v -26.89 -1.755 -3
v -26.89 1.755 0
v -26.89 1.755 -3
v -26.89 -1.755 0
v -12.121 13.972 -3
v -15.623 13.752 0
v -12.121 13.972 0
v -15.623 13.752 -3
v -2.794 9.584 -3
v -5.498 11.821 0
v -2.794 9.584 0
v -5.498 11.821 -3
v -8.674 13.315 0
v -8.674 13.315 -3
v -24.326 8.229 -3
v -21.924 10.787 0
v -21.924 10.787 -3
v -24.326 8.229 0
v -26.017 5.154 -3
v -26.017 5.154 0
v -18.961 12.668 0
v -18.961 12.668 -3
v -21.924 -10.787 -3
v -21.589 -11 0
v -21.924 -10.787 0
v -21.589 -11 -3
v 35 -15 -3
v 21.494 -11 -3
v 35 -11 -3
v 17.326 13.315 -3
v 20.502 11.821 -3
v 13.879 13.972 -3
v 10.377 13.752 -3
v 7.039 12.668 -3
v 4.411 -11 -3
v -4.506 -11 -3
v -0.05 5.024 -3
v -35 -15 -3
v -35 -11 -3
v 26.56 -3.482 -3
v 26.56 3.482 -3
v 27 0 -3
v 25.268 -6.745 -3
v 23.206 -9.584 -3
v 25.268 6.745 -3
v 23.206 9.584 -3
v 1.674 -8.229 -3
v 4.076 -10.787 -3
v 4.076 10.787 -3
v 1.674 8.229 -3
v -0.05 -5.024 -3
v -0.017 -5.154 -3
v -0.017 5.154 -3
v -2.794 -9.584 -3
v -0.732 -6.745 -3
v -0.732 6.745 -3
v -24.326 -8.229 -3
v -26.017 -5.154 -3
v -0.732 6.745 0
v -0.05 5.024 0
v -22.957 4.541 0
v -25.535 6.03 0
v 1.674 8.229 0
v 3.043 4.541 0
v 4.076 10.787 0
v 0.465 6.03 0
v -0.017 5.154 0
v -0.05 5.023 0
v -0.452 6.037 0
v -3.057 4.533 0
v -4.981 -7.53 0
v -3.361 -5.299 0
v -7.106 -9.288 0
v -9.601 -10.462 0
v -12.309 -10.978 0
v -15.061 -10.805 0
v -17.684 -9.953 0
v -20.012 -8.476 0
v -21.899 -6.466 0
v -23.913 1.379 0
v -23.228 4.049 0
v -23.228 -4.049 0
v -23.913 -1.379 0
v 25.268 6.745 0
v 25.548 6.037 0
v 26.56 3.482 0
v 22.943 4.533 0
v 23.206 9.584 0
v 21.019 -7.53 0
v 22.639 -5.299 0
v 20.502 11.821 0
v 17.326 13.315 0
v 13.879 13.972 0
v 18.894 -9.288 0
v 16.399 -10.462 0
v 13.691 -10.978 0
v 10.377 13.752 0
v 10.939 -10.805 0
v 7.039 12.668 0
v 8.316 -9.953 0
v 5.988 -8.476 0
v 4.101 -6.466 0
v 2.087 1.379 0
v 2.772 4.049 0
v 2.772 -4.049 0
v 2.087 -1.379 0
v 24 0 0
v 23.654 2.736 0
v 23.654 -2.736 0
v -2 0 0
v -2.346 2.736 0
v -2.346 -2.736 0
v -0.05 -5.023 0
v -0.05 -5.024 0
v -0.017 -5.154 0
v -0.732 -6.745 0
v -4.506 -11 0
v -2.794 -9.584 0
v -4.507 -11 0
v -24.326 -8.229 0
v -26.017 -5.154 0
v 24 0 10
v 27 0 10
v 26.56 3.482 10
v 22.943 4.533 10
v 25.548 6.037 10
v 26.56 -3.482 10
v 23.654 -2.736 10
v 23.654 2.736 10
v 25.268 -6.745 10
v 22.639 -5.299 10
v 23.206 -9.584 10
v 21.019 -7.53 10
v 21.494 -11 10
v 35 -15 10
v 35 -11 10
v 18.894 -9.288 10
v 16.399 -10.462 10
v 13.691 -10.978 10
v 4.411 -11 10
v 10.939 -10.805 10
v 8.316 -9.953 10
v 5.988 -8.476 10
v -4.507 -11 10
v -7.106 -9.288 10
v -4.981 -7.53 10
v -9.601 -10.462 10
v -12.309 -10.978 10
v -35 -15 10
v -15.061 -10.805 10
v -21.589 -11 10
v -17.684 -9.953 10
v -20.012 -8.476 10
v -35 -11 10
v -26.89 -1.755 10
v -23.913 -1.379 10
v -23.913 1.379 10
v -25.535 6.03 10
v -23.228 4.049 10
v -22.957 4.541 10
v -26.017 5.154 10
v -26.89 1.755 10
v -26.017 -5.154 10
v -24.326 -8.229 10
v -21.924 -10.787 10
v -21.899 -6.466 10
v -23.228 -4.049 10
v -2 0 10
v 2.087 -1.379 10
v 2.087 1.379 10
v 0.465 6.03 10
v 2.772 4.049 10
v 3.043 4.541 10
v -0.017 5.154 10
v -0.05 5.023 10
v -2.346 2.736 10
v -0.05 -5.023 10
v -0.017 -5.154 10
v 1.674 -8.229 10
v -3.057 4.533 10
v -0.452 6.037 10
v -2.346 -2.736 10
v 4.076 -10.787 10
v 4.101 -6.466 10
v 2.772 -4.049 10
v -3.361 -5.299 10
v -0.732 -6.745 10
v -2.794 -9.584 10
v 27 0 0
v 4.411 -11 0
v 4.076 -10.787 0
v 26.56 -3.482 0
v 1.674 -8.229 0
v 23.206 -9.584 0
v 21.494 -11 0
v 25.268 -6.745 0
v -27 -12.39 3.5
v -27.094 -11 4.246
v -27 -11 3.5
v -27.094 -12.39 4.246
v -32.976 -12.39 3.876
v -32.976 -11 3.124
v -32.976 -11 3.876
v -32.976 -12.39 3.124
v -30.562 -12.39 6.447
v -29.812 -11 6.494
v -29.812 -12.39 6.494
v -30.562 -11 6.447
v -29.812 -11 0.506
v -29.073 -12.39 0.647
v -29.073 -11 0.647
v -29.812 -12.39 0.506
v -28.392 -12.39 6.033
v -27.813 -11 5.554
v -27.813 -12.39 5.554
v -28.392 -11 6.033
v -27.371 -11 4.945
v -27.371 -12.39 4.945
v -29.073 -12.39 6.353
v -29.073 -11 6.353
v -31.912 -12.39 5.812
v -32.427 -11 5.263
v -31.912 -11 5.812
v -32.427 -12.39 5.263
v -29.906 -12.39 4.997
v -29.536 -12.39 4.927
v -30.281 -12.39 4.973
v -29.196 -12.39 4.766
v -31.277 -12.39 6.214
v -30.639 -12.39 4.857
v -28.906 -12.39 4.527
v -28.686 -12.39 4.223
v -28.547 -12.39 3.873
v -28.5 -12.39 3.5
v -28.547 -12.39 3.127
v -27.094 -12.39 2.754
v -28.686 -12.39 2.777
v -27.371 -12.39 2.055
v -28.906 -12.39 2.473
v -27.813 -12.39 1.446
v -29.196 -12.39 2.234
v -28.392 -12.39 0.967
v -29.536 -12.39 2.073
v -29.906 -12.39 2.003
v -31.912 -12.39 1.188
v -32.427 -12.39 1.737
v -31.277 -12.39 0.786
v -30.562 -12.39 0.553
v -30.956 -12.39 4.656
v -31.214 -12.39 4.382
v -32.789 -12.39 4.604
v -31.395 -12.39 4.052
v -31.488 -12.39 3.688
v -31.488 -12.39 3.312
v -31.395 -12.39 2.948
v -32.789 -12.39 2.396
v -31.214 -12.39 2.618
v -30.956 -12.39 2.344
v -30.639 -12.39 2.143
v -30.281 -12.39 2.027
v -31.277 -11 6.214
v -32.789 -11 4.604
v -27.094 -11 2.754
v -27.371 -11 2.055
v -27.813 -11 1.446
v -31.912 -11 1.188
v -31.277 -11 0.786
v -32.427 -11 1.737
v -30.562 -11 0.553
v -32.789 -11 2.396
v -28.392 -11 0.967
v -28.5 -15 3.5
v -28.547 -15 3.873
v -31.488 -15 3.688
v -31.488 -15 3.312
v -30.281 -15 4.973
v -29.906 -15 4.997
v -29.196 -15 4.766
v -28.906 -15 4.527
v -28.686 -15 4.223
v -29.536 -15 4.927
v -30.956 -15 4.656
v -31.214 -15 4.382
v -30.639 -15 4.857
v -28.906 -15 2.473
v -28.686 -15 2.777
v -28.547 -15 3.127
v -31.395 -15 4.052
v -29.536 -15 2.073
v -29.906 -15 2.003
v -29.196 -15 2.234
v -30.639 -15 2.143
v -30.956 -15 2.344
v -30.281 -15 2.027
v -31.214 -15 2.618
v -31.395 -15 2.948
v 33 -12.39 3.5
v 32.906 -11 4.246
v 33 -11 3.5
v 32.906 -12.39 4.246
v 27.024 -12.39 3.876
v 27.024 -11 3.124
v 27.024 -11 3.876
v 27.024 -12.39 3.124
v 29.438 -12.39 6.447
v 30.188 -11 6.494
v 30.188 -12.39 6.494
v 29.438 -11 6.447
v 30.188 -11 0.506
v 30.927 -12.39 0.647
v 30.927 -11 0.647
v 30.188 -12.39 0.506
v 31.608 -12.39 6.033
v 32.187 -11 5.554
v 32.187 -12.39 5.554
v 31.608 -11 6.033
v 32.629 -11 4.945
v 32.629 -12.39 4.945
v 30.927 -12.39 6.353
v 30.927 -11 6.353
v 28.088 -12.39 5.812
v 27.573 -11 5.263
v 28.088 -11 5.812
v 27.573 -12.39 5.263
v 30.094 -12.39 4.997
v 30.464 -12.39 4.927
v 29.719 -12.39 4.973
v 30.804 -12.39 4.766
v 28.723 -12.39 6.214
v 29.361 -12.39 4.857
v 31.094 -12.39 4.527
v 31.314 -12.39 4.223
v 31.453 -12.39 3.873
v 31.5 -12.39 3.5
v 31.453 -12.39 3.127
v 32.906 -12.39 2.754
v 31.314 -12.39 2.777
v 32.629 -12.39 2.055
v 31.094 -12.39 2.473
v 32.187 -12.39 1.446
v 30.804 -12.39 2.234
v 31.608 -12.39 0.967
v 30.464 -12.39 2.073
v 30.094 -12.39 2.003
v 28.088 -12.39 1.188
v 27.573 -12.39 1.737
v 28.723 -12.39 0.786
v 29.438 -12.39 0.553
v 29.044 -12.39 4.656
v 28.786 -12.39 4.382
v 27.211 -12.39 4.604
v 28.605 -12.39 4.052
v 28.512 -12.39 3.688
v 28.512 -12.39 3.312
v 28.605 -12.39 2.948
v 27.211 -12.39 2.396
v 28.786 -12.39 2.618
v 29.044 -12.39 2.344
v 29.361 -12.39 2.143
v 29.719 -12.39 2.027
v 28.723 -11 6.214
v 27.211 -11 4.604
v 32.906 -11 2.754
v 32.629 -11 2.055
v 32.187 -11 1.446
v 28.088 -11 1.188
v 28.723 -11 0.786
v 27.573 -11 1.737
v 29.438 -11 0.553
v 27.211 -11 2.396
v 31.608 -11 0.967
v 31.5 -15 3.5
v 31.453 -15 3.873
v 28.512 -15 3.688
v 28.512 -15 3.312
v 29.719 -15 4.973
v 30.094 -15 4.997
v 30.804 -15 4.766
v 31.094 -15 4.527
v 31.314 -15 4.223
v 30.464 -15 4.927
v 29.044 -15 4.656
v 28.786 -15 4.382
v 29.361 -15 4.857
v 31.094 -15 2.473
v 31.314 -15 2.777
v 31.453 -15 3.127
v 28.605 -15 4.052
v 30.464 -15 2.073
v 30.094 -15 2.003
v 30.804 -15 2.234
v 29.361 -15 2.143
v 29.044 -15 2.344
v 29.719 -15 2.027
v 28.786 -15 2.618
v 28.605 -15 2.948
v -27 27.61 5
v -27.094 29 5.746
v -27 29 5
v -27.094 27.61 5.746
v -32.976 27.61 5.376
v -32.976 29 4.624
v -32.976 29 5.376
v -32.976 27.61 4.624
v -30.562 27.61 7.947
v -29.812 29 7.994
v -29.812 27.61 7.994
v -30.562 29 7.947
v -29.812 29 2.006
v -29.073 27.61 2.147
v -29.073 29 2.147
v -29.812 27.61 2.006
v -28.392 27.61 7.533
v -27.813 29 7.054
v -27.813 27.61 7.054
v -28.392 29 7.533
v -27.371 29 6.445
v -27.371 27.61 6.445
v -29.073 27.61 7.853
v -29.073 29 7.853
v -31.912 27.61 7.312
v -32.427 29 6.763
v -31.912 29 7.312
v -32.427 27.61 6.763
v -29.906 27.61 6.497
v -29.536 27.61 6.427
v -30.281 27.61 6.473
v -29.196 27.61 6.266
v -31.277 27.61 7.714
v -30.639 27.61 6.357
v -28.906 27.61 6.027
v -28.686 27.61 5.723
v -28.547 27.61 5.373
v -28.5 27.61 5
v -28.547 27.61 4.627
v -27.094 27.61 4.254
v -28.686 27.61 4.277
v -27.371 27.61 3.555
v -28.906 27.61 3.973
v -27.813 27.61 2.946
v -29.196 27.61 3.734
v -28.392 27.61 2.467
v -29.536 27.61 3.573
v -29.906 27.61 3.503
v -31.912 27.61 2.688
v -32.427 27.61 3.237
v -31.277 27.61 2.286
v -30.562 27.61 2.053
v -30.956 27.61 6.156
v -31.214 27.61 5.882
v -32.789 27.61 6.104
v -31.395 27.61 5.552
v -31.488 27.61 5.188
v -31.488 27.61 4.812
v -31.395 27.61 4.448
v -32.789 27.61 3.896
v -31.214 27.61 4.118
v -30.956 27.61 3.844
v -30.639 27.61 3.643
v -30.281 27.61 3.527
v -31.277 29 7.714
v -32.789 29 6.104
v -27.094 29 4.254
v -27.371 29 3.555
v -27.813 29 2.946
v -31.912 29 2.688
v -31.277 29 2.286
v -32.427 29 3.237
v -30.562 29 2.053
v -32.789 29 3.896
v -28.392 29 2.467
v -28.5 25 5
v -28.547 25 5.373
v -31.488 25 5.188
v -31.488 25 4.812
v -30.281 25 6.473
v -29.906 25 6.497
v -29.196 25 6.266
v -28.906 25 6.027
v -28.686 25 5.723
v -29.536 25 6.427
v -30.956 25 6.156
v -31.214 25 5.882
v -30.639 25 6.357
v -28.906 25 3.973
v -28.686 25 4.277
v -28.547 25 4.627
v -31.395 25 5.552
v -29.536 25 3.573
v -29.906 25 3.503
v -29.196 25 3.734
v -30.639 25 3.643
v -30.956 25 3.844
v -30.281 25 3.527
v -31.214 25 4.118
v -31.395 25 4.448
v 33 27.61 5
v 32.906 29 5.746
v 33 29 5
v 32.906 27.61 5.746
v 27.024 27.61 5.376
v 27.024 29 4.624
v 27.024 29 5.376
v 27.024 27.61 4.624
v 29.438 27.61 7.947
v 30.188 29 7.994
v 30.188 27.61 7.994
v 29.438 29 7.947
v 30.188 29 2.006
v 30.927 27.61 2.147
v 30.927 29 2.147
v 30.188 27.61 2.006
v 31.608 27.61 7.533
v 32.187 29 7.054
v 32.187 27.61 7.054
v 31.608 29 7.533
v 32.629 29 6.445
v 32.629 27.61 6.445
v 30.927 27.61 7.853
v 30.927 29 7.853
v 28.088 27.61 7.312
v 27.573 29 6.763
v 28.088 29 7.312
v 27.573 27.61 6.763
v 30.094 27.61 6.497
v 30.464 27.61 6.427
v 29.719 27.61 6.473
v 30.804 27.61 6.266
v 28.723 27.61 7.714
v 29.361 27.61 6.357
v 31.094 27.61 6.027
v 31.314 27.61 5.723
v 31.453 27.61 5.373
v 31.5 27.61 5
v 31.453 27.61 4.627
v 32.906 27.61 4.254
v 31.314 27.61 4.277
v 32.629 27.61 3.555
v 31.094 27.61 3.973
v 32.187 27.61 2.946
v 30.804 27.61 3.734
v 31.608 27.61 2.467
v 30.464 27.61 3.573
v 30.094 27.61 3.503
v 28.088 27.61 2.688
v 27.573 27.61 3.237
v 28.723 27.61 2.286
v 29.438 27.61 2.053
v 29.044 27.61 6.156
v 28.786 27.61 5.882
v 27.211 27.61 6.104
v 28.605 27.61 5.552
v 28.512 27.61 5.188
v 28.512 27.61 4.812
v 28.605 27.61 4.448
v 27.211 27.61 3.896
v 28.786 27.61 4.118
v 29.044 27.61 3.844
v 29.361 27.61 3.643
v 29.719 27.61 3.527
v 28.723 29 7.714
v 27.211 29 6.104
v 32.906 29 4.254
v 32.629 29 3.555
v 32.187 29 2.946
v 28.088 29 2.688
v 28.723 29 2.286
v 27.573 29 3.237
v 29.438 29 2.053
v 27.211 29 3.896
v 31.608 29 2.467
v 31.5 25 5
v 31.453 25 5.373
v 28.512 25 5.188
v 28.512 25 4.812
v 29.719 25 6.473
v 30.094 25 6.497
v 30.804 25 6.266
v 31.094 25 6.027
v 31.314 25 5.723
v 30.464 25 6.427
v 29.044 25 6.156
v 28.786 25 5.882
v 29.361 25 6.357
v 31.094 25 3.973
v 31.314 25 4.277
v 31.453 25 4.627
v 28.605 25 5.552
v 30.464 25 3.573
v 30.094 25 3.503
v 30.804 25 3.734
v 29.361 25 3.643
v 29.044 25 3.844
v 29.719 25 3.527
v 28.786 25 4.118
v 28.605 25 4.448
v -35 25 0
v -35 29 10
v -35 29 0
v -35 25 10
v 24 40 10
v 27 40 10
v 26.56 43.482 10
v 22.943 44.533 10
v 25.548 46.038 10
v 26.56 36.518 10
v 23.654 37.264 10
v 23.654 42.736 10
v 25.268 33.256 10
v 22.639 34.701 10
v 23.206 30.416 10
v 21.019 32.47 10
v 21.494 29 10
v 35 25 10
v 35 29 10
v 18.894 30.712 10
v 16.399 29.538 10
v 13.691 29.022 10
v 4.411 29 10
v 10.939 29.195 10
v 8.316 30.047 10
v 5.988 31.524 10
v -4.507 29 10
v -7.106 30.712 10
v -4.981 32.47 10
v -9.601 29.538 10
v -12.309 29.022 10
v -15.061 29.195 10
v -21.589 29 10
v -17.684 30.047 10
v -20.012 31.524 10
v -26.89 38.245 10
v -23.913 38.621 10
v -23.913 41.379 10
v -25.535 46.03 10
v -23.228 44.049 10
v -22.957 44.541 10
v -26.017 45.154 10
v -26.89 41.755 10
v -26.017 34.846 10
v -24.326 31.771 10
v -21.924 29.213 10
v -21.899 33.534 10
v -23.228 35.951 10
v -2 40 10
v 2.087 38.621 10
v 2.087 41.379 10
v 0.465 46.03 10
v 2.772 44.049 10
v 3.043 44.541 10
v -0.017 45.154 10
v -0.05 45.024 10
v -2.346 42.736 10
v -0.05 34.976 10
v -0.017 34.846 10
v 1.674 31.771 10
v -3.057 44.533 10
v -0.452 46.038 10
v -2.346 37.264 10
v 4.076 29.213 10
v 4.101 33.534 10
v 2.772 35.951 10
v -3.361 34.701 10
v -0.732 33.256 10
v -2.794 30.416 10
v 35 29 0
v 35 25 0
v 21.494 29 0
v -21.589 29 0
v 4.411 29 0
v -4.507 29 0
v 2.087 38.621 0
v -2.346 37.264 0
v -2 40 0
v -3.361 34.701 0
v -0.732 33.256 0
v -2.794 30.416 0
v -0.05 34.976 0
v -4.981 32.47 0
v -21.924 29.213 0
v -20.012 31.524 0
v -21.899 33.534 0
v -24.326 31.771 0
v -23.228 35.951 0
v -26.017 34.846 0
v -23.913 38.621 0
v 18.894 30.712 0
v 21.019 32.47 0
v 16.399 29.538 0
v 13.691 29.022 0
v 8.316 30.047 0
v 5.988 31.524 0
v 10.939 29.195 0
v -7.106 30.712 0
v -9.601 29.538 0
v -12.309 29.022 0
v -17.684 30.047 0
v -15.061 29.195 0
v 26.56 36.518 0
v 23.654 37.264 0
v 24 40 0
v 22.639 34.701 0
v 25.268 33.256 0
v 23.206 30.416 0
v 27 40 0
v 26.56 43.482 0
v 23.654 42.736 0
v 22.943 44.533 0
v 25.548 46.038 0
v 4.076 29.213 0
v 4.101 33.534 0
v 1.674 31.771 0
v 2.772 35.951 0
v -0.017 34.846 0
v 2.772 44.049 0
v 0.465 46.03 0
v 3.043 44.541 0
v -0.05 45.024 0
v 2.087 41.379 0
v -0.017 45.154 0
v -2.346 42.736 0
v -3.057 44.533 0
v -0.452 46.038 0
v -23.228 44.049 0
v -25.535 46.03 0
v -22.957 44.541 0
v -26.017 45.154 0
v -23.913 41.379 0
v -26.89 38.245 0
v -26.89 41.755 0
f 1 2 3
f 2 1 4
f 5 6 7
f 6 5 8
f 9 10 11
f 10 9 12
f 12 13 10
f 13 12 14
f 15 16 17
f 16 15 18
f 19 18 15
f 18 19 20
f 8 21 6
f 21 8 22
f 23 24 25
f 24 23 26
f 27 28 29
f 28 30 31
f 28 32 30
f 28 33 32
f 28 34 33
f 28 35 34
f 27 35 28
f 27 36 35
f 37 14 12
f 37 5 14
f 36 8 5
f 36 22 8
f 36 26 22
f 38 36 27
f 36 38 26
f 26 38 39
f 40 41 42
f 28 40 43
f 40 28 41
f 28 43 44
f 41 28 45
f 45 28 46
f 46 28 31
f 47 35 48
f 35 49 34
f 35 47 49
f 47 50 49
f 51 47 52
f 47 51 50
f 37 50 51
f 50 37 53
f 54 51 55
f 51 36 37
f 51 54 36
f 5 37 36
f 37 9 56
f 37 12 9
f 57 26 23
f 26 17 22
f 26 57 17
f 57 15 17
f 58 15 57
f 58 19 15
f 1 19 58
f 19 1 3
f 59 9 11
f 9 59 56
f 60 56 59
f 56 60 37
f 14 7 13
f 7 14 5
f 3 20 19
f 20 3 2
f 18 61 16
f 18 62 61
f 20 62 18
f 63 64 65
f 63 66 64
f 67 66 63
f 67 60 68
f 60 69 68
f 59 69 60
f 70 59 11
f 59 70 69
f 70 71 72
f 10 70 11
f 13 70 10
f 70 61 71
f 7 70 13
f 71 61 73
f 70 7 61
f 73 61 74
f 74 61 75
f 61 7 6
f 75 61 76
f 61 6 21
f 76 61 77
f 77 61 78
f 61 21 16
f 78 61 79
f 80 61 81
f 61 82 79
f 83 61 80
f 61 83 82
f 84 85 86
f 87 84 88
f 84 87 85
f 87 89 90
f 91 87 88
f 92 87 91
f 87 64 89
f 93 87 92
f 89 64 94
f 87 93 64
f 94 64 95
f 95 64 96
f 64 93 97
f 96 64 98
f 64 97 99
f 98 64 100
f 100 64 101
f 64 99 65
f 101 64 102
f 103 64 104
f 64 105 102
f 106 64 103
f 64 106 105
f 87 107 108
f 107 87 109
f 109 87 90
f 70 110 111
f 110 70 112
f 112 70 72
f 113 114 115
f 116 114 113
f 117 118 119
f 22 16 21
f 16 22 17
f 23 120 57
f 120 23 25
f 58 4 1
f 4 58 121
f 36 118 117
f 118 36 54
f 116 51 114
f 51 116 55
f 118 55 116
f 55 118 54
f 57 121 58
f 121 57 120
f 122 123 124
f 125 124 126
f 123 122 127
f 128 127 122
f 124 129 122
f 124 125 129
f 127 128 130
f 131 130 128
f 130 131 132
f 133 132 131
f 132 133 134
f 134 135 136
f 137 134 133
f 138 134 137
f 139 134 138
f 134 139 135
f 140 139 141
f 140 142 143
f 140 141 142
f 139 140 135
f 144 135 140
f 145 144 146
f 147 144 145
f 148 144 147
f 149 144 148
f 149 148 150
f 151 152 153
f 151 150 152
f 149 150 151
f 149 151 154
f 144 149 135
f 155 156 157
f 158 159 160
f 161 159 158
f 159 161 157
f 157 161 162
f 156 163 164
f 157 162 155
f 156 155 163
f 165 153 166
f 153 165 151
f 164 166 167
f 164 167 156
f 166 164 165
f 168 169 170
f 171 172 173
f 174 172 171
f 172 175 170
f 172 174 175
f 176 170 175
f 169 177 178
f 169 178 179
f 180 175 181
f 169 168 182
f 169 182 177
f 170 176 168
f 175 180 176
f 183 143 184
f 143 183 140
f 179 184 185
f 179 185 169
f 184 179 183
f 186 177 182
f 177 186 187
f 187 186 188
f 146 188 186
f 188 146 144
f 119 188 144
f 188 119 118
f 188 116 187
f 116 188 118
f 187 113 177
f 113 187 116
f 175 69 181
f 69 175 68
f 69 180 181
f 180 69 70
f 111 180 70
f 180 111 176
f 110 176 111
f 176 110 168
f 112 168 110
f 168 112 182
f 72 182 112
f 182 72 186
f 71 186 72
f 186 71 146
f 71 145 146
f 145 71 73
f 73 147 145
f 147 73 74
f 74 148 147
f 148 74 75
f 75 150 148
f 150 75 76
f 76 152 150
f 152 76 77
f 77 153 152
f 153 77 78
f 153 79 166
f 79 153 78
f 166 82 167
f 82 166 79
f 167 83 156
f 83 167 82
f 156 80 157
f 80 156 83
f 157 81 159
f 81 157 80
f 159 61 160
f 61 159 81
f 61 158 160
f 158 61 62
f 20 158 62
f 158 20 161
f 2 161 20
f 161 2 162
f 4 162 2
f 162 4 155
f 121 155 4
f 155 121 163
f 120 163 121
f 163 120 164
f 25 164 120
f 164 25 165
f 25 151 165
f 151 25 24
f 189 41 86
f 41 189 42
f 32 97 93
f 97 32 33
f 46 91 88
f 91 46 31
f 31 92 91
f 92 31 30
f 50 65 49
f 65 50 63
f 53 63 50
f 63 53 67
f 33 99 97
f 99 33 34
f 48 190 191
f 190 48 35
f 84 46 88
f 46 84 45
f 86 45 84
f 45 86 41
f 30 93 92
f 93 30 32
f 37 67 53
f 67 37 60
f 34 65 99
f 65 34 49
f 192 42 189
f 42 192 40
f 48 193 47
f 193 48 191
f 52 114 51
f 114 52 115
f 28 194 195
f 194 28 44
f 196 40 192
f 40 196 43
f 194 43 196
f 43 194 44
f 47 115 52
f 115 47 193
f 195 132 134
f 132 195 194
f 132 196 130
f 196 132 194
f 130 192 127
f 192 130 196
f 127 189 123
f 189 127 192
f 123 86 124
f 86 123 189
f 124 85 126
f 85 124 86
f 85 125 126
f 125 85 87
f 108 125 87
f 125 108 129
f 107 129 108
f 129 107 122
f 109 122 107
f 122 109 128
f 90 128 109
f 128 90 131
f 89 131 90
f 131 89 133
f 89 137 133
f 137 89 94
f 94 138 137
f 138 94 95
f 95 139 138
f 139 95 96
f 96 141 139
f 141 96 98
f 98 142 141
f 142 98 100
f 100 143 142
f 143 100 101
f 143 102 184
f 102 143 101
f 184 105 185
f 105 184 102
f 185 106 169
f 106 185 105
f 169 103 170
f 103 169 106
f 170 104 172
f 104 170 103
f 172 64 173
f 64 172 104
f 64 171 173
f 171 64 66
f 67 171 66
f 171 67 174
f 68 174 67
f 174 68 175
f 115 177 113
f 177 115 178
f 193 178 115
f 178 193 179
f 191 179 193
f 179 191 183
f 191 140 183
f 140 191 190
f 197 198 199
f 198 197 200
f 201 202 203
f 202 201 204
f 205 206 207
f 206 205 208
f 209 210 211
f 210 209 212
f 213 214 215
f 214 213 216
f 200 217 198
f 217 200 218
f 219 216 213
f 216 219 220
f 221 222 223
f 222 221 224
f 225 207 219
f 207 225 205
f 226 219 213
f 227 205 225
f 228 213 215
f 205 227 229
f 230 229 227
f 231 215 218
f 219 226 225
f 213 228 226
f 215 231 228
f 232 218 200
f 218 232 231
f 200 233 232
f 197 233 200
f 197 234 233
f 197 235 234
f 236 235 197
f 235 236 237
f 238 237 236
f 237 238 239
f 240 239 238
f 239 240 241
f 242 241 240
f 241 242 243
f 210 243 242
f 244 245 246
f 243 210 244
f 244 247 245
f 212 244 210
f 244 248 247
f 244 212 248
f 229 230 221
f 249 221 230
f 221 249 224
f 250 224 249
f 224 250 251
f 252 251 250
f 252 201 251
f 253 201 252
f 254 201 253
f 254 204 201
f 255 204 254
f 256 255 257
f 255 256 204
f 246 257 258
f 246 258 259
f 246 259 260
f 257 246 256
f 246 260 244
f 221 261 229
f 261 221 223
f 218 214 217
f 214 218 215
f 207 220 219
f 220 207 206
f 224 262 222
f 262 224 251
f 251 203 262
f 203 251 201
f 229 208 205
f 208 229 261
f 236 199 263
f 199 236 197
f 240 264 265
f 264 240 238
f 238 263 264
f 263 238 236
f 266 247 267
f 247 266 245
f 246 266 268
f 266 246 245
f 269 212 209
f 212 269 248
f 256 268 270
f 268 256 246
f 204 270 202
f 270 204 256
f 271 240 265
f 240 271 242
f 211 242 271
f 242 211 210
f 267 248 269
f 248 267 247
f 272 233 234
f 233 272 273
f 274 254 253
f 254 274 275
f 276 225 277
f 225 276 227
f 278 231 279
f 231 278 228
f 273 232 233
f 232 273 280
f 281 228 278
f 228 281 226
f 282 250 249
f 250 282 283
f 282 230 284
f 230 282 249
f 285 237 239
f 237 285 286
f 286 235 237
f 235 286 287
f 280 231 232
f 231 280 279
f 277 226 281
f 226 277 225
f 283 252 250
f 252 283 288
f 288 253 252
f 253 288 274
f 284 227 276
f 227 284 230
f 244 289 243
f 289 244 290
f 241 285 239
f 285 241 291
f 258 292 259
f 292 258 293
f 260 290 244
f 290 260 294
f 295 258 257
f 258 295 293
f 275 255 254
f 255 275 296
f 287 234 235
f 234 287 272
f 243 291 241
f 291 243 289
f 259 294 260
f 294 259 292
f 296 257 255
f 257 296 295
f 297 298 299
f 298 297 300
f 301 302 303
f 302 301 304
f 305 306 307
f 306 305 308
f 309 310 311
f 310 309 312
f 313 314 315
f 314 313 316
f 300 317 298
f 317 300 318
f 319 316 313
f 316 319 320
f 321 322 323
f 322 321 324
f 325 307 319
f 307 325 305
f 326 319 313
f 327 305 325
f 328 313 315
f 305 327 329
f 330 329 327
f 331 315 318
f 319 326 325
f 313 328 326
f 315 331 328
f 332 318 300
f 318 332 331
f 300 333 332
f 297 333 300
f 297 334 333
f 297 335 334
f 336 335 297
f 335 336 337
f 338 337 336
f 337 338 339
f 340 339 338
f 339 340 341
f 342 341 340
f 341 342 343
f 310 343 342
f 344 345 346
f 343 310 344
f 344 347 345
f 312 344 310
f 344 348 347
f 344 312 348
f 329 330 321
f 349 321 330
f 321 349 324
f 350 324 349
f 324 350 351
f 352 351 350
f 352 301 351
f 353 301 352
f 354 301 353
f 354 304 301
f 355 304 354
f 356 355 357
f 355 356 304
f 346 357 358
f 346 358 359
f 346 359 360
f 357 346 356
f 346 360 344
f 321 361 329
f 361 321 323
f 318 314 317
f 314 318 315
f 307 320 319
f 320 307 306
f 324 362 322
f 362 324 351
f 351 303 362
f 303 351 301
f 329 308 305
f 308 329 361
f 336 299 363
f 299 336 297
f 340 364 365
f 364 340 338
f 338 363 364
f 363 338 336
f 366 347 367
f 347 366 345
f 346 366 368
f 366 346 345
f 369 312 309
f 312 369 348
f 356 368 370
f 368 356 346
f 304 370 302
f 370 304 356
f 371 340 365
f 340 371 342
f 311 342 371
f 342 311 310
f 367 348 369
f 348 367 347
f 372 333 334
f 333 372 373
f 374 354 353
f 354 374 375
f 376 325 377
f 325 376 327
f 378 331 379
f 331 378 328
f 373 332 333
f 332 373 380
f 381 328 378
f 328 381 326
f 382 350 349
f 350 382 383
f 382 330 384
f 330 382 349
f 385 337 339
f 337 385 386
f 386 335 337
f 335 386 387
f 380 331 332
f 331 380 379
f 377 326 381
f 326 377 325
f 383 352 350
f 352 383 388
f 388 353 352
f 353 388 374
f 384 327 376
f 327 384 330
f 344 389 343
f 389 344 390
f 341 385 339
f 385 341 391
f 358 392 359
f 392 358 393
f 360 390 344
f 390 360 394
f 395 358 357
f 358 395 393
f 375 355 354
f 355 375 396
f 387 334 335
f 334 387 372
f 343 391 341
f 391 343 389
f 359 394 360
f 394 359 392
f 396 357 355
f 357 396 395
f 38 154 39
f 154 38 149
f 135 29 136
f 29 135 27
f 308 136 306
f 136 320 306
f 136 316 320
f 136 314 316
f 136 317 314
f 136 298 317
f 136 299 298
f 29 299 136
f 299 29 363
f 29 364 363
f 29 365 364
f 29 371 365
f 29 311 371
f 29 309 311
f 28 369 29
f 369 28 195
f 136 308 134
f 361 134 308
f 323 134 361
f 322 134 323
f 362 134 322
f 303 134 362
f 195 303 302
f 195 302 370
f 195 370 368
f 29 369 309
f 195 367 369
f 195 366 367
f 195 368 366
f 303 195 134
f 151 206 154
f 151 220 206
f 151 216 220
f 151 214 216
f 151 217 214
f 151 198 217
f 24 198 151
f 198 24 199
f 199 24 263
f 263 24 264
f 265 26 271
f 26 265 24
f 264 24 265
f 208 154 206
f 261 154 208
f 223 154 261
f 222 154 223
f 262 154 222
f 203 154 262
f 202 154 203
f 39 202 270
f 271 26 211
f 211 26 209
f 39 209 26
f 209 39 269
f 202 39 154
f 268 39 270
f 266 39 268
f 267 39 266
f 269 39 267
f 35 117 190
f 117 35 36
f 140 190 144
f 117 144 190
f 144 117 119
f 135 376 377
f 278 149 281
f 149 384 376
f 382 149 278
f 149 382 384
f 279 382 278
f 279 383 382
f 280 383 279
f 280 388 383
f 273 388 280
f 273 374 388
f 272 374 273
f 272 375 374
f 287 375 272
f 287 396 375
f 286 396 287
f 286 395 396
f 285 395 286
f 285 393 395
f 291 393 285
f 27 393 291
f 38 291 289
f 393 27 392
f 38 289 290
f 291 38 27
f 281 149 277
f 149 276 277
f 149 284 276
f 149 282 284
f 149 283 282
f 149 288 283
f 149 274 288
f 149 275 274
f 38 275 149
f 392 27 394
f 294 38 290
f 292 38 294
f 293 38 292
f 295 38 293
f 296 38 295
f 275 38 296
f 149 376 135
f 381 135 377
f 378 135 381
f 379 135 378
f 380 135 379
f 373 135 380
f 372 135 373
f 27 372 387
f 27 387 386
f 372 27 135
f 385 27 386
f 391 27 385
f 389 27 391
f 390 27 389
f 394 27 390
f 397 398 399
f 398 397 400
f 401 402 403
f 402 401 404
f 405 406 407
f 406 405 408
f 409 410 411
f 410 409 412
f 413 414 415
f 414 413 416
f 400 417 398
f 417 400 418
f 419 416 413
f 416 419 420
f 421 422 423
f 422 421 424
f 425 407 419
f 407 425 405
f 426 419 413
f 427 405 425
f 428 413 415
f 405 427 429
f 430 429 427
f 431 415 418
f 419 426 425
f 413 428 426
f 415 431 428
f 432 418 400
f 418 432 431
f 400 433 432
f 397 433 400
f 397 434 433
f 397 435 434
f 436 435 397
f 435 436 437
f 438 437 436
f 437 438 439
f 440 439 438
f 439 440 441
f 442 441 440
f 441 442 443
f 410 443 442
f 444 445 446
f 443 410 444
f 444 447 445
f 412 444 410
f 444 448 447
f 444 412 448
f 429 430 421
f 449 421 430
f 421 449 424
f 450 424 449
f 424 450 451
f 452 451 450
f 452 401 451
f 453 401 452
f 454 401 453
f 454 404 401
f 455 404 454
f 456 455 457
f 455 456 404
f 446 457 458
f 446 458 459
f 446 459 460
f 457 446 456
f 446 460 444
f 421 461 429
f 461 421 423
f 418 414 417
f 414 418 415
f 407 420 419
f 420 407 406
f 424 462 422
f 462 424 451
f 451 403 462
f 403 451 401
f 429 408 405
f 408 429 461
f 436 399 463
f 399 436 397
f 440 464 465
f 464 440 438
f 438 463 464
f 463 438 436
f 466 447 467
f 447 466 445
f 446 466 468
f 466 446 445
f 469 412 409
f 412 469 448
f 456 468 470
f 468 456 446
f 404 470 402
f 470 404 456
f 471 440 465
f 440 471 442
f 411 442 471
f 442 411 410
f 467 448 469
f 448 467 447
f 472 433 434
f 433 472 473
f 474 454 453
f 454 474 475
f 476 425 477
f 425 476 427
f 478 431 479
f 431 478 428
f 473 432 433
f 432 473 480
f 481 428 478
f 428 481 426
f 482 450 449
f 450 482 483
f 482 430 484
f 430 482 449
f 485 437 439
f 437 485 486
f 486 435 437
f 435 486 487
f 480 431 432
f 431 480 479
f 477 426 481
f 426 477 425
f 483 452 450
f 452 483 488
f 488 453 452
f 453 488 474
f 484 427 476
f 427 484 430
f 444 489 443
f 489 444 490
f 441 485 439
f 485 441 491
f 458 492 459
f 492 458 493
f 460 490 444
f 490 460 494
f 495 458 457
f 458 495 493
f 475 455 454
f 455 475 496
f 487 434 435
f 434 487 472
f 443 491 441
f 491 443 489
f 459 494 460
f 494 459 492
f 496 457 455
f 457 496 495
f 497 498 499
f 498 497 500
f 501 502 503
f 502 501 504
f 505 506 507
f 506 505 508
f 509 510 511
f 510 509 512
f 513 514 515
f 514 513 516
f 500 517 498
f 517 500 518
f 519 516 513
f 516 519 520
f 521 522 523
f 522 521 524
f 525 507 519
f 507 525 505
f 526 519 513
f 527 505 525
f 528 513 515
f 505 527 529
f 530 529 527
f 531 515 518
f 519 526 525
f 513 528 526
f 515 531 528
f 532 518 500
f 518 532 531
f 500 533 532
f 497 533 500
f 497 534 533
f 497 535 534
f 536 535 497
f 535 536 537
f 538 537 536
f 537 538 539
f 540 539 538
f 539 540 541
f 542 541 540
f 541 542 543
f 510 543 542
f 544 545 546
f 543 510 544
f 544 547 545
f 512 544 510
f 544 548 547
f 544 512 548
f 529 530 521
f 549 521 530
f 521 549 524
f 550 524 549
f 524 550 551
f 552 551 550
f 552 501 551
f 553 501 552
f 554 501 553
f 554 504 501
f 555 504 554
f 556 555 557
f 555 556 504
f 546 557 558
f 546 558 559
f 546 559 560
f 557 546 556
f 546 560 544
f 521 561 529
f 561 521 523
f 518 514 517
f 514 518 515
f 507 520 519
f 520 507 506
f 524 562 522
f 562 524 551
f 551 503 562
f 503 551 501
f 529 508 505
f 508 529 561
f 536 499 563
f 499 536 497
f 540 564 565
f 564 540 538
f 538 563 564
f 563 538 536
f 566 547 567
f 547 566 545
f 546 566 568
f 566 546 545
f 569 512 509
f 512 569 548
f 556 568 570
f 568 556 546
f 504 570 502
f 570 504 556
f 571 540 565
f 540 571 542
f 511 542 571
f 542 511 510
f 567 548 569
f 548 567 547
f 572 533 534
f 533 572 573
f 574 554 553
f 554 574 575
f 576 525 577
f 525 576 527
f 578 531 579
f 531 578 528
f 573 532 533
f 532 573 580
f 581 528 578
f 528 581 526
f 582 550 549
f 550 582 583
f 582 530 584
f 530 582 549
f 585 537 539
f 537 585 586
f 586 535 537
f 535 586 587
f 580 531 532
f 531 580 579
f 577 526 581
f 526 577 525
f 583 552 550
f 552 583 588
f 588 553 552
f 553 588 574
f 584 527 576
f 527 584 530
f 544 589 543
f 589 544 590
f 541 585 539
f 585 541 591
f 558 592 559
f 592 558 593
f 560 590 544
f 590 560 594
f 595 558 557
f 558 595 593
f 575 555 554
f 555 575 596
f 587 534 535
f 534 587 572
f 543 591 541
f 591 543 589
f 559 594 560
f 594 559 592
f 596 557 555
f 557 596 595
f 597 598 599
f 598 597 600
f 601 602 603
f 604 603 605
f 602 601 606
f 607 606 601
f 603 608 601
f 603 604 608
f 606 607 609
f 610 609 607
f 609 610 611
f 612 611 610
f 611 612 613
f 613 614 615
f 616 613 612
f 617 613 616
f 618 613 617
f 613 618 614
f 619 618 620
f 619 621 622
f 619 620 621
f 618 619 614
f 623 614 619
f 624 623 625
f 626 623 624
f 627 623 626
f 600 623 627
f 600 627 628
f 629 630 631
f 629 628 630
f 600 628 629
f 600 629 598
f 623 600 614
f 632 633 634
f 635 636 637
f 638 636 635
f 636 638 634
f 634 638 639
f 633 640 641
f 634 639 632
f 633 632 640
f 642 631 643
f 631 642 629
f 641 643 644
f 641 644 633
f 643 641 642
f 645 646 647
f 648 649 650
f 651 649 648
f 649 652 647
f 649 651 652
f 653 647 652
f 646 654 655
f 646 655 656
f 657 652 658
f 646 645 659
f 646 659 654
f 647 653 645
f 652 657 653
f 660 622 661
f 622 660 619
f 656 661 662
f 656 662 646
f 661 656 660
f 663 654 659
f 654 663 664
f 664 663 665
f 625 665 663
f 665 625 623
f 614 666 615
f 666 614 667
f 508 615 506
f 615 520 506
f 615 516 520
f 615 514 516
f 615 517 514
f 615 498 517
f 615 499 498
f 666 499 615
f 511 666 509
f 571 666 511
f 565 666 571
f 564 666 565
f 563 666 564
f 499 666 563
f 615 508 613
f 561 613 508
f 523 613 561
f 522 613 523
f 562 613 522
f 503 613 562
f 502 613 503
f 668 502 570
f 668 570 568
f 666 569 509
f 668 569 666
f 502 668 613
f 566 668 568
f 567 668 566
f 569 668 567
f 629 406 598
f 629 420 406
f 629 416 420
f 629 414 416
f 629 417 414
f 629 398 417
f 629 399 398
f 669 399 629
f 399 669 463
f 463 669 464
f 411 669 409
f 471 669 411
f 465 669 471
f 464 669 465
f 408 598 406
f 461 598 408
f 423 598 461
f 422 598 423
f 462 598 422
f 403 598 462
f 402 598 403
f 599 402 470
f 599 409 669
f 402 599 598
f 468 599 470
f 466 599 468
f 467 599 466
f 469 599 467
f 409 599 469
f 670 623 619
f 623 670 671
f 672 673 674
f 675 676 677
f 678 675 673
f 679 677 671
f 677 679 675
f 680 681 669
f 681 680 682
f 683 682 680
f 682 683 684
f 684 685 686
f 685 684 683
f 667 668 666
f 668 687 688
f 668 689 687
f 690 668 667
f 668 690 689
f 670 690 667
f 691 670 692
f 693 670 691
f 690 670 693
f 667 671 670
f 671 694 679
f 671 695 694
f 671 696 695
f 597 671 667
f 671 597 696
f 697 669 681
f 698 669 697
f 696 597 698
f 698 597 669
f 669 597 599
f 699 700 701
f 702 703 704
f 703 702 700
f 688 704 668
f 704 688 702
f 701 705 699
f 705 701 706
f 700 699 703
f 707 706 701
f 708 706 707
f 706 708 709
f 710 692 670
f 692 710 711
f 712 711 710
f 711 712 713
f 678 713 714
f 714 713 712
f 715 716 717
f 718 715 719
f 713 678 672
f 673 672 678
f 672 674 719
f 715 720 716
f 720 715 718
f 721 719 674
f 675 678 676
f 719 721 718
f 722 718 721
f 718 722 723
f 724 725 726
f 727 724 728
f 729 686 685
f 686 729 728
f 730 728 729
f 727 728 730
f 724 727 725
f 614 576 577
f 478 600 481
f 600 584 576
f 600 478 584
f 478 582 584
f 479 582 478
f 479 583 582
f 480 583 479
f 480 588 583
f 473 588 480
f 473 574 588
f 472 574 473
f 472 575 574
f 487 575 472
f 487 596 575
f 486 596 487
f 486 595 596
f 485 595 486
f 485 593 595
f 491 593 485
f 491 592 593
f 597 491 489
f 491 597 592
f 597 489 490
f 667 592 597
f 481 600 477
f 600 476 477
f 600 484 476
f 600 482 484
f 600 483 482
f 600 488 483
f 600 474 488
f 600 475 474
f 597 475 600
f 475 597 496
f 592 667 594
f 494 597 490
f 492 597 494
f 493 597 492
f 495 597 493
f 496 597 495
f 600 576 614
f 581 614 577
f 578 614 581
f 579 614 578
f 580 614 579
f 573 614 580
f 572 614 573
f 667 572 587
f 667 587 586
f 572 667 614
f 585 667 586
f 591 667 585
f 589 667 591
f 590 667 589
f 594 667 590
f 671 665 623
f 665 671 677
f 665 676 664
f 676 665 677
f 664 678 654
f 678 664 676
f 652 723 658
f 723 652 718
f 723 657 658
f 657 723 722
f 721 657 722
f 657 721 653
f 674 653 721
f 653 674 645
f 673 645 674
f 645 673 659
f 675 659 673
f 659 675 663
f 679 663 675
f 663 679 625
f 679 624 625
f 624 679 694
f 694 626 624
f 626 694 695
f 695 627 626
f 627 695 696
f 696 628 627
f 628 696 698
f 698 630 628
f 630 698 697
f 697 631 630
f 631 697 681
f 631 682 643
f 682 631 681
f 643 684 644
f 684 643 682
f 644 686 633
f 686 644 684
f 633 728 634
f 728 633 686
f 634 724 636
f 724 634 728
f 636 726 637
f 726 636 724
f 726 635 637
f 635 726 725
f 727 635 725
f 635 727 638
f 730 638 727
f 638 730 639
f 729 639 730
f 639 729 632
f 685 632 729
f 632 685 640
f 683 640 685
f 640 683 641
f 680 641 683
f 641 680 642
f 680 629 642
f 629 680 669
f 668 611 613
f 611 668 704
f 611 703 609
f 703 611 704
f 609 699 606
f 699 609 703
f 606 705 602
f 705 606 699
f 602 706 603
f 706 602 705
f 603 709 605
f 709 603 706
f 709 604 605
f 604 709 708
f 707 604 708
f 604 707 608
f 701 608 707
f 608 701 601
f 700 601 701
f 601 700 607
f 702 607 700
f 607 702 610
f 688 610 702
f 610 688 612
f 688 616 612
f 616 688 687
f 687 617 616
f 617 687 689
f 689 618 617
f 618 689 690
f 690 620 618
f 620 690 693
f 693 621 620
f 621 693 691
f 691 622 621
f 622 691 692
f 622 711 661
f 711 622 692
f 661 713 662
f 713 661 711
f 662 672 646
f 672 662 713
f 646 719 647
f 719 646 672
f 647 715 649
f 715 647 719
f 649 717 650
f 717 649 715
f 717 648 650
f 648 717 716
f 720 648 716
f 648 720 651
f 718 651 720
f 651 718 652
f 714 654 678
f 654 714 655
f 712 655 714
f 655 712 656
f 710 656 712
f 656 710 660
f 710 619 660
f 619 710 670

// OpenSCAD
$fn = 25;

module screwHole() {
	translate([0, 0, -0.01]) cylinder(d = 6, h = 0.4*6);
	cylinder(d = 3, h = 1.01*6);
}

module oneTube(includeBack) {
	if (includeBack) translate([0, 0, -3]) cylinder(d=28, h=3);
	linear_extrude(height=10) {
			difference() {
				circle(d=28);
				circle(d=22);
				translate([5, 19]) rotate([0, 0, 30]) square(30, center=true);
				translate([-5, 19]) rotate([0, 0, -30]) square(30, center=true);
			}
		}
}

module hydrostik(includeBack) {
	

	translate([-13, 0, 0]) oneTube(includeBack);
	translate([13, 0, 0]) oneTube(includeBack);

	#translate([-35, -15, includeBack ? -3 : 0]) difference() {
		cube([70, 4, includeBack ? 13 : 10]);
		translate([5, 5, includeBack ? 6.5 : 5]) rotate([90, 0, 0]) screwHole();
		translate([65, 5, includeBack ? 6.5 : 5]) rotate([90, 0, 0]) screwHole();
	}
}

hydrostik(true);
translate([0, 40, 0]) hydrostik(false);
